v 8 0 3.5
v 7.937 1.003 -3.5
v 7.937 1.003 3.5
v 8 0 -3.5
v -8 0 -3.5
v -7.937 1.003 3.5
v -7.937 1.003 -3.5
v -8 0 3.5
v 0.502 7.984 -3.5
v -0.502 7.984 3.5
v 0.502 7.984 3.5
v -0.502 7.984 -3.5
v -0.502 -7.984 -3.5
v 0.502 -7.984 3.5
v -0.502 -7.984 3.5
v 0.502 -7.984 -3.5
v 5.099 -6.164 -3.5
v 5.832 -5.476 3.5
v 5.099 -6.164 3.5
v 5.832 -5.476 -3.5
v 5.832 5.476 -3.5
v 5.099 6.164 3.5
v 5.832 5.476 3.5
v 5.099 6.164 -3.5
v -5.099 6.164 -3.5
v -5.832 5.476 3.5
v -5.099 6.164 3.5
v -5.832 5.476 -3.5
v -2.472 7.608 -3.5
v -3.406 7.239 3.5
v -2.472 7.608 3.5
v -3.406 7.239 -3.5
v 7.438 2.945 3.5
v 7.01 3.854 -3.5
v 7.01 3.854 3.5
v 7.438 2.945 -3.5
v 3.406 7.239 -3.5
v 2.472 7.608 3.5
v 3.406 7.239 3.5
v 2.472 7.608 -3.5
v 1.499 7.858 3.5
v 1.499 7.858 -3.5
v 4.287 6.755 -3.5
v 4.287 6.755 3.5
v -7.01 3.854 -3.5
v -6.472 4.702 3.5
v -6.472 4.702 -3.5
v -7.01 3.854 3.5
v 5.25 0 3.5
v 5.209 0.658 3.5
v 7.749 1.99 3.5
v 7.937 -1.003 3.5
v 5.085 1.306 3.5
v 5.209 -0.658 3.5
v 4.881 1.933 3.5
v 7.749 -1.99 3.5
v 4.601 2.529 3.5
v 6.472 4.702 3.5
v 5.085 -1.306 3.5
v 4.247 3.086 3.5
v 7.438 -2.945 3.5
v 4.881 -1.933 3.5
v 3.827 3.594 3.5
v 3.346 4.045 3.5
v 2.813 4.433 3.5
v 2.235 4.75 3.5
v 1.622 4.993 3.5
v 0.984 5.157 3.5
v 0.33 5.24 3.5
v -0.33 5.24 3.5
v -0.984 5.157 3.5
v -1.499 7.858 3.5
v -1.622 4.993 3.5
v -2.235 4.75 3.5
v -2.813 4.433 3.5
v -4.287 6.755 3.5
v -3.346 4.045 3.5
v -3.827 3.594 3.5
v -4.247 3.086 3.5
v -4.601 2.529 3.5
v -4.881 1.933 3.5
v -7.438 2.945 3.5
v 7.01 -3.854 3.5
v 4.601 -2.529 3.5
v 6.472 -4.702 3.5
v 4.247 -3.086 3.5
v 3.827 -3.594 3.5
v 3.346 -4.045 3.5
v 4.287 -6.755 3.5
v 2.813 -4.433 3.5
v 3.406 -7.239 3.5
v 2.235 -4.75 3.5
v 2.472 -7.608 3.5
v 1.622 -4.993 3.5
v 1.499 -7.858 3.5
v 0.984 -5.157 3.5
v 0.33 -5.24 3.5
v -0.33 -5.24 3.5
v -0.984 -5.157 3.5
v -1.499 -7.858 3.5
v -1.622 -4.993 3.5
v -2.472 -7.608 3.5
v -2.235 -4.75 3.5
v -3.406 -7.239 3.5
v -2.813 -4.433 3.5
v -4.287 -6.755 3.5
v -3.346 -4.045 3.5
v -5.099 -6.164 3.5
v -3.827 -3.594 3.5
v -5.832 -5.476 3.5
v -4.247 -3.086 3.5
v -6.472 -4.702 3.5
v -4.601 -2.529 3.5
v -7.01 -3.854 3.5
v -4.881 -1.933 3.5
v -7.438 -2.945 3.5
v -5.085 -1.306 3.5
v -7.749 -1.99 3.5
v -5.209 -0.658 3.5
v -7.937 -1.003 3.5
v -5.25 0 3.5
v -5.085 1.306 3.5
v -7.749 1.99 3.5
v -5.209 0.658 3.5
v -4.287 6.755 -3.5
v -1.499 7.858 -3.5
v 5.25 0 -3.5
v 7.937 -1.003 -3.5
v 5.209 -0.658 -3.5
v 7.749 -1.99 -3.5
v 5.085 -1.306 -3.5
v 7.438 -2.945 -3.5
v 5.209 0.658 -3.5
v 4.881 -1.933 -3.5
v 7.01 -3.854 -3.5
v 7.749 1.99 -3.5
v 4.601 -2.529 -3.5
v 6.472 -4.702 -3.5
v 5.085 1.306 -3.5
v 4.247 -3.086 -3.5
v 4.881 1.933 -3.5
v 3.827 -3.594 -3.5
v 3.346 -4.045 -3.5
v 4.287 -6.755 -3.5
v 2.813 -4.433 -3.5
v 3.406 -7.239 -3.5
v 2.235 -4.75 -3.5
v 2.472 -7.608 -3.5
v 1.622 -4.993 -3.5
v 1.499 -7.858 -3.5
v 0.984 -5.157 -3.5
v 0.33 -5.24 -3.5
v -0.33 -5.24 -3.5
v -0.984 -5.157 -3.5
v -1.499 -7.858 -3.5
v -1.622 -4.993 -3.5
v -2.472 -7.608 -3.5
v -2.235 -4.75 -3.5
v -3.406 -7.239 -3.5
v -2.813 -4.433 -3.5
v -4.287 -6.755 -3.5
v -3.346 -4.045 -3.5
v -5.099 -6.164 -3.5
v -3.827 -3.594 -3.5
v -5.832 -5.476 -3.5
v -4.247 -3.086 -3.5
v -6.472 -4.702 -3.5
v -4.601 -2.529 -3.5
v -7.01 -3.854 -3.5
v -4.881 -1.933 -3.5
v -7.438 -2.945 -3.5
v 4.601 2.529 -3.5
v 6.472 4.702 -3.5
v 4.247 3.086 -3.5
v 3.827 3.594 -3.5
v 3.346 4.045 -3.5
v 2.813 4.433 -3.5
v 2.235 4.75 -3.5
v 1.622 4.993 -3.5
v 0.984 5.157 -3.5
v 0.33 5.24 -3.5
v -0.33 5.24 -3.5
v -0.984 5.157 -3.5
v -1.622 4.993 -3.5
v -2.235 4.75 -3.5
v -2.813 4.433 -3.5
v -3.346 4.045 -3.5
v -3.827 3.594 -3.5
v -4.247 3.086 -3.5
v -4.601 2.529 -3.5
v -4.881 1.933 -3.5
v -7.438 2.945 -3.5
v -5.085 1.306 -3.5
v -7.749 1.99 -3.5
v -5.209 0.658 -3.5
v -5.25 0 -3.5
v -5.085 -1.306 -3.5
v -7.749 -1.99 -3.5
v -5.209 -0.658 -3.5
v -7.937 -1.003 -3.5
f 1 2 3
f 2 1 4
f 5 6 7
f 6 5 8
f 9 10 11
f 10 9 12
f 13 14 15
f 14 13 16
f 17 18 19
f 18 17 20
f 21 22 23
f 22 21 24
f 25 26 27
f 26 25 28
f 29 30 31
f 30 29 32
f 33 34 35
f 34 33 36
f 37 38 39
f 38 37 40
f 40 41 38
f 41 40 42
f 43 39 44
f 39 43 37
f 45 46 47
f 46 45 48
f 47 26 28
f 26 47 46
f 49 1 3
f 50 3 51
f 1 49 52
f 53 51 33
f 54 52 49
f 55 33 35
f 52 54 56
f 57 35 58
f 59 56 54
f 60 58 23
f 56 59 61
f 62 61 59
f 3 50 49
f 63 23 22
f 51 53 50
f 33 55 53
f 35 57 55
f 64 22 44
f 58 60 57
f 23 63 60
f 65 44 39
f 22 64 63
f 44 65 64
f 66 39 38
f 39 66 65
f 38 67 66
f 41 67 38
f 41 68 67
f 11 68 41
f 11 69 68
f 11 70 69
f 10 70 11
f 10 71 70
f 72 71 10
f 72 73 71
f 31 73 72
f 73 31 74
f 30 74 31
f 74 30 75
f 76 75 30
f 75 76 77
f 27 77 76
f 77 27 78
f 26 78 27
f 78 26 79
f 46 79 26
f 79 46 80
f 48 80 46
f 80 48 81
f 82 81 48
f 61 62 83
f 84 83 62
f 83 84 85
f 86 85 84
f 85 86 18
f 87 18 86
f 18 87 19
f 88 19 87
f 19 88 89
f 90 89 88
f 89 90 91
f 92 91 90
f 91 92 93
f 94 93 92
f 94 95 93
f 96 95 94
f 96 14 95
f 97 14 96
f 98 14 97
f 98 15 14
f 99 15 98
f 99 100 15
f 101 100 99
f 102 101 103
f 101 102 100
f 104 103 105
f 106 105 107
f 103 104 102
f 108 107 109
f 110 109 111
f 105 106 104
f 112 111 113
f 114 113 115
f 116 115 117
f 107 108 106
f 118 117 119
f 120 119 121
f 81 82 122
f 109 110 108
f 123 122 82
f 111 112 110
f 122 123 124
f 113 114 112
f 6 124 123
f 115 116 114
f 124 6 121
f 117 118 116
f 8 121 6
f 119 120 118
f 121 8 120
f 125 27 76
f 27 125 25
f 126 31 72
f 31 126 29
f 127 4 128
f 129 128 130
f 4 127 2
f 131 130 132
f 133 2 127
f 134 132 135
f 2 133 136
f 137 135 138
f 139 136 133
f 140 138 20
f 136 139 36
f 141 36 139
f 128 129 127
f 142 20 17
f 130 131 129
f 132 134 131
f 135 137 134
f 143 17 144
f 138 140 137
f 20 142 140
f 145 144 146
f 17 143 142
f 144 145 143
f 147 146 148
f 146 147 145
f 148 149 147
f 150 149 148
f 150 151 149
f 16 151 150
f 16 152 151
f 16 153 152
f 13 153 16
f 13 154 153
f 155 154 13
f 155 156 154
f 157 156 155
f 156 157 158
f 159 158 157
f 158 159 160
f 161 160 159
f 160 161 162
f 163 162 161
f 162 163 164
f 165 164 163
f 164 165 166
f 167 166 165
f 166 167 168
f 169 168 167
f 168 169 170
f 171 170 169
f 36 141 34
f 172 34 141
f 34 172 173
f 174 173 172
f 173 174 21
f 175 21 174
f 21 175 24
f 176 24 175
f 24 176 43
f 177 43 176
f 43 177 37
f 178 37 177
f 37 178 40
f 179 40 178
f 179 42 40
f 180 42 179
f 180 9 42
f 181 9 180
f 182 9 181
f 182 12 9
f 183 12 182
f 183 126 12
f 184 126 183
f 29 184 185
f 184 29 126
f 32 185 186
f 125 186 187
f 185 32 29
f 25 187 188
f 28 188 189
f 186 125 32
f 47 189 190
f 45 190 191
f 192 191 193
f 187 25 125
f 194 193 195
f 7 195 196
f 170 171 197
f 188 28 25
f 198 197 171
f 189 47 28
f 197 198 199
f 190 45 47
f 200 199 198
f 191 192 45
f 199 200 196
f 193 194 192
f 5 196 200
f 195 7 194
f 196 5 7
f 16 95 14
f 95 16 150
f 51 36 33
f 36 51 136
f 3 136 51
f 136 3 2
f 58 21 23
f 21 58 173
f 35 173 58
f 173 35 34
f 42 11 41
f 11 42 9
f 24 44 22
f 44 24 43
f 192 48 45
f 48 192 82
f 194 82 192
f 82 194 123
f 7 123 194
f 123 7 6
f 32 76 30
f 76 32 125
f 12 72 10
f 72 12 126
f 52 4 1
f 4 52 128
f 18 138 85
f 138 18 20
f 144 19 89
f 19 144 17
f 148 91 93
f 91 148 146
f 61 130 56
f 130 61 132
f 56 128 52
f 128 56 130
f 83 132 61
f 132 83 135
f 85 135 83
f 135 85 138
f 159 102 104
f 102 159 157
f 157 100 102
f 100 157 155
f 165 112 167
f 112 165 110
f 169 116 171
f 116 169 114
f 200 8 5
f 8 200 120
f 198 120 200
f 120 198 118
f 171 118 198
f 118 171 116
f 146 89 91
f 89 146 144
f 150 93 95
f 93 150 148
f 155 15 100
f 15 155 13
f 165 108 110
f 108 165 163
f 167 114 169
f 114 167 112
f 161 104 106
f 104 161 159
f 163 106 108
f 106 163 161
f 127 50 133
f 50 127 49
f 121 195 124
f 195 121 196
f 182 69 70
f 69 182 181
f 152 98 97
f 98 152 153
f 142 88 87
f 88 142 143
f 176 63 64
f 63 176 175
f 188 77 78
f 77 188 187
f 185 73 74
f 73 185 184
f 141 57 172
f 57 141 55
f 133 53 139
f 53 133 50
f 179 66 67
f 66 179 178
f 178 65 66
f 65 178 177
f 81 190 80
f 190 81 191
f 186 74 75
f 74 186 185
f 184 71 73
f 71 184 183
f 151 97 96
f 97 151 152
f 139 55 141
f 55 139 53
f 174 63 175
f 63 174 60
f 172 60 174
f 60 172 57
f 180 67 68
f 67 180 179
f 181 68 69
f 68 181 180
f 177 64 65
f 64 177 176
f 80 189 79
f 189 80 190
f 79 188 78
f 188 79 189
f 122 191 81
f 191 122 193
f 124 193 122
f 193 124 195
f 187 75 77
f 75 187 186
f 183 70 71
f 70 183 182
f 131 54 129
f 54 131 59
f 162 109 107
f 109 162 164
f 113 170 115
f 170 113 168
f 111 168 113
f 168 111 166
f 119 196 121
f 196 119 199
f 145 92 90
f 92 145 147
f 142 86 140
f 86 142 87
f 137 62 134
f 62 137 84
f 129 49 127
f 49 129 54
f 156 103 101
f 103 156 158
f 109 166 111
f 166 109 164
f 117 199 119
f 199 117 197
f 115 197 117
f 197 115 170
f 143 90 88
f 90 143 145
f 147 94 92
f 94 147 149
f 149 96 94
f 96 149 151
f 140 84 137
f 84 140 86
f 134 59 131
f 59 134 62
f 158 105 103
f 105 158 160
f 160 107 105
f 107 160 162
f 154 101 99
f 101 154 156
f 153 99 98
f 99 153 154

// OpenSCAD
$fn = 50;


difference() {
	union() {
		translate(v = [0, 0, -3.5000000000]) {
			cylinder(h = 7, r = 8.0000000000);
		}
	}
	union() {
		translate(v = [0, 0, -100.0000000000]) {
			cylinder(h = 200, r = 5.2500000000);
		}
	}
}
